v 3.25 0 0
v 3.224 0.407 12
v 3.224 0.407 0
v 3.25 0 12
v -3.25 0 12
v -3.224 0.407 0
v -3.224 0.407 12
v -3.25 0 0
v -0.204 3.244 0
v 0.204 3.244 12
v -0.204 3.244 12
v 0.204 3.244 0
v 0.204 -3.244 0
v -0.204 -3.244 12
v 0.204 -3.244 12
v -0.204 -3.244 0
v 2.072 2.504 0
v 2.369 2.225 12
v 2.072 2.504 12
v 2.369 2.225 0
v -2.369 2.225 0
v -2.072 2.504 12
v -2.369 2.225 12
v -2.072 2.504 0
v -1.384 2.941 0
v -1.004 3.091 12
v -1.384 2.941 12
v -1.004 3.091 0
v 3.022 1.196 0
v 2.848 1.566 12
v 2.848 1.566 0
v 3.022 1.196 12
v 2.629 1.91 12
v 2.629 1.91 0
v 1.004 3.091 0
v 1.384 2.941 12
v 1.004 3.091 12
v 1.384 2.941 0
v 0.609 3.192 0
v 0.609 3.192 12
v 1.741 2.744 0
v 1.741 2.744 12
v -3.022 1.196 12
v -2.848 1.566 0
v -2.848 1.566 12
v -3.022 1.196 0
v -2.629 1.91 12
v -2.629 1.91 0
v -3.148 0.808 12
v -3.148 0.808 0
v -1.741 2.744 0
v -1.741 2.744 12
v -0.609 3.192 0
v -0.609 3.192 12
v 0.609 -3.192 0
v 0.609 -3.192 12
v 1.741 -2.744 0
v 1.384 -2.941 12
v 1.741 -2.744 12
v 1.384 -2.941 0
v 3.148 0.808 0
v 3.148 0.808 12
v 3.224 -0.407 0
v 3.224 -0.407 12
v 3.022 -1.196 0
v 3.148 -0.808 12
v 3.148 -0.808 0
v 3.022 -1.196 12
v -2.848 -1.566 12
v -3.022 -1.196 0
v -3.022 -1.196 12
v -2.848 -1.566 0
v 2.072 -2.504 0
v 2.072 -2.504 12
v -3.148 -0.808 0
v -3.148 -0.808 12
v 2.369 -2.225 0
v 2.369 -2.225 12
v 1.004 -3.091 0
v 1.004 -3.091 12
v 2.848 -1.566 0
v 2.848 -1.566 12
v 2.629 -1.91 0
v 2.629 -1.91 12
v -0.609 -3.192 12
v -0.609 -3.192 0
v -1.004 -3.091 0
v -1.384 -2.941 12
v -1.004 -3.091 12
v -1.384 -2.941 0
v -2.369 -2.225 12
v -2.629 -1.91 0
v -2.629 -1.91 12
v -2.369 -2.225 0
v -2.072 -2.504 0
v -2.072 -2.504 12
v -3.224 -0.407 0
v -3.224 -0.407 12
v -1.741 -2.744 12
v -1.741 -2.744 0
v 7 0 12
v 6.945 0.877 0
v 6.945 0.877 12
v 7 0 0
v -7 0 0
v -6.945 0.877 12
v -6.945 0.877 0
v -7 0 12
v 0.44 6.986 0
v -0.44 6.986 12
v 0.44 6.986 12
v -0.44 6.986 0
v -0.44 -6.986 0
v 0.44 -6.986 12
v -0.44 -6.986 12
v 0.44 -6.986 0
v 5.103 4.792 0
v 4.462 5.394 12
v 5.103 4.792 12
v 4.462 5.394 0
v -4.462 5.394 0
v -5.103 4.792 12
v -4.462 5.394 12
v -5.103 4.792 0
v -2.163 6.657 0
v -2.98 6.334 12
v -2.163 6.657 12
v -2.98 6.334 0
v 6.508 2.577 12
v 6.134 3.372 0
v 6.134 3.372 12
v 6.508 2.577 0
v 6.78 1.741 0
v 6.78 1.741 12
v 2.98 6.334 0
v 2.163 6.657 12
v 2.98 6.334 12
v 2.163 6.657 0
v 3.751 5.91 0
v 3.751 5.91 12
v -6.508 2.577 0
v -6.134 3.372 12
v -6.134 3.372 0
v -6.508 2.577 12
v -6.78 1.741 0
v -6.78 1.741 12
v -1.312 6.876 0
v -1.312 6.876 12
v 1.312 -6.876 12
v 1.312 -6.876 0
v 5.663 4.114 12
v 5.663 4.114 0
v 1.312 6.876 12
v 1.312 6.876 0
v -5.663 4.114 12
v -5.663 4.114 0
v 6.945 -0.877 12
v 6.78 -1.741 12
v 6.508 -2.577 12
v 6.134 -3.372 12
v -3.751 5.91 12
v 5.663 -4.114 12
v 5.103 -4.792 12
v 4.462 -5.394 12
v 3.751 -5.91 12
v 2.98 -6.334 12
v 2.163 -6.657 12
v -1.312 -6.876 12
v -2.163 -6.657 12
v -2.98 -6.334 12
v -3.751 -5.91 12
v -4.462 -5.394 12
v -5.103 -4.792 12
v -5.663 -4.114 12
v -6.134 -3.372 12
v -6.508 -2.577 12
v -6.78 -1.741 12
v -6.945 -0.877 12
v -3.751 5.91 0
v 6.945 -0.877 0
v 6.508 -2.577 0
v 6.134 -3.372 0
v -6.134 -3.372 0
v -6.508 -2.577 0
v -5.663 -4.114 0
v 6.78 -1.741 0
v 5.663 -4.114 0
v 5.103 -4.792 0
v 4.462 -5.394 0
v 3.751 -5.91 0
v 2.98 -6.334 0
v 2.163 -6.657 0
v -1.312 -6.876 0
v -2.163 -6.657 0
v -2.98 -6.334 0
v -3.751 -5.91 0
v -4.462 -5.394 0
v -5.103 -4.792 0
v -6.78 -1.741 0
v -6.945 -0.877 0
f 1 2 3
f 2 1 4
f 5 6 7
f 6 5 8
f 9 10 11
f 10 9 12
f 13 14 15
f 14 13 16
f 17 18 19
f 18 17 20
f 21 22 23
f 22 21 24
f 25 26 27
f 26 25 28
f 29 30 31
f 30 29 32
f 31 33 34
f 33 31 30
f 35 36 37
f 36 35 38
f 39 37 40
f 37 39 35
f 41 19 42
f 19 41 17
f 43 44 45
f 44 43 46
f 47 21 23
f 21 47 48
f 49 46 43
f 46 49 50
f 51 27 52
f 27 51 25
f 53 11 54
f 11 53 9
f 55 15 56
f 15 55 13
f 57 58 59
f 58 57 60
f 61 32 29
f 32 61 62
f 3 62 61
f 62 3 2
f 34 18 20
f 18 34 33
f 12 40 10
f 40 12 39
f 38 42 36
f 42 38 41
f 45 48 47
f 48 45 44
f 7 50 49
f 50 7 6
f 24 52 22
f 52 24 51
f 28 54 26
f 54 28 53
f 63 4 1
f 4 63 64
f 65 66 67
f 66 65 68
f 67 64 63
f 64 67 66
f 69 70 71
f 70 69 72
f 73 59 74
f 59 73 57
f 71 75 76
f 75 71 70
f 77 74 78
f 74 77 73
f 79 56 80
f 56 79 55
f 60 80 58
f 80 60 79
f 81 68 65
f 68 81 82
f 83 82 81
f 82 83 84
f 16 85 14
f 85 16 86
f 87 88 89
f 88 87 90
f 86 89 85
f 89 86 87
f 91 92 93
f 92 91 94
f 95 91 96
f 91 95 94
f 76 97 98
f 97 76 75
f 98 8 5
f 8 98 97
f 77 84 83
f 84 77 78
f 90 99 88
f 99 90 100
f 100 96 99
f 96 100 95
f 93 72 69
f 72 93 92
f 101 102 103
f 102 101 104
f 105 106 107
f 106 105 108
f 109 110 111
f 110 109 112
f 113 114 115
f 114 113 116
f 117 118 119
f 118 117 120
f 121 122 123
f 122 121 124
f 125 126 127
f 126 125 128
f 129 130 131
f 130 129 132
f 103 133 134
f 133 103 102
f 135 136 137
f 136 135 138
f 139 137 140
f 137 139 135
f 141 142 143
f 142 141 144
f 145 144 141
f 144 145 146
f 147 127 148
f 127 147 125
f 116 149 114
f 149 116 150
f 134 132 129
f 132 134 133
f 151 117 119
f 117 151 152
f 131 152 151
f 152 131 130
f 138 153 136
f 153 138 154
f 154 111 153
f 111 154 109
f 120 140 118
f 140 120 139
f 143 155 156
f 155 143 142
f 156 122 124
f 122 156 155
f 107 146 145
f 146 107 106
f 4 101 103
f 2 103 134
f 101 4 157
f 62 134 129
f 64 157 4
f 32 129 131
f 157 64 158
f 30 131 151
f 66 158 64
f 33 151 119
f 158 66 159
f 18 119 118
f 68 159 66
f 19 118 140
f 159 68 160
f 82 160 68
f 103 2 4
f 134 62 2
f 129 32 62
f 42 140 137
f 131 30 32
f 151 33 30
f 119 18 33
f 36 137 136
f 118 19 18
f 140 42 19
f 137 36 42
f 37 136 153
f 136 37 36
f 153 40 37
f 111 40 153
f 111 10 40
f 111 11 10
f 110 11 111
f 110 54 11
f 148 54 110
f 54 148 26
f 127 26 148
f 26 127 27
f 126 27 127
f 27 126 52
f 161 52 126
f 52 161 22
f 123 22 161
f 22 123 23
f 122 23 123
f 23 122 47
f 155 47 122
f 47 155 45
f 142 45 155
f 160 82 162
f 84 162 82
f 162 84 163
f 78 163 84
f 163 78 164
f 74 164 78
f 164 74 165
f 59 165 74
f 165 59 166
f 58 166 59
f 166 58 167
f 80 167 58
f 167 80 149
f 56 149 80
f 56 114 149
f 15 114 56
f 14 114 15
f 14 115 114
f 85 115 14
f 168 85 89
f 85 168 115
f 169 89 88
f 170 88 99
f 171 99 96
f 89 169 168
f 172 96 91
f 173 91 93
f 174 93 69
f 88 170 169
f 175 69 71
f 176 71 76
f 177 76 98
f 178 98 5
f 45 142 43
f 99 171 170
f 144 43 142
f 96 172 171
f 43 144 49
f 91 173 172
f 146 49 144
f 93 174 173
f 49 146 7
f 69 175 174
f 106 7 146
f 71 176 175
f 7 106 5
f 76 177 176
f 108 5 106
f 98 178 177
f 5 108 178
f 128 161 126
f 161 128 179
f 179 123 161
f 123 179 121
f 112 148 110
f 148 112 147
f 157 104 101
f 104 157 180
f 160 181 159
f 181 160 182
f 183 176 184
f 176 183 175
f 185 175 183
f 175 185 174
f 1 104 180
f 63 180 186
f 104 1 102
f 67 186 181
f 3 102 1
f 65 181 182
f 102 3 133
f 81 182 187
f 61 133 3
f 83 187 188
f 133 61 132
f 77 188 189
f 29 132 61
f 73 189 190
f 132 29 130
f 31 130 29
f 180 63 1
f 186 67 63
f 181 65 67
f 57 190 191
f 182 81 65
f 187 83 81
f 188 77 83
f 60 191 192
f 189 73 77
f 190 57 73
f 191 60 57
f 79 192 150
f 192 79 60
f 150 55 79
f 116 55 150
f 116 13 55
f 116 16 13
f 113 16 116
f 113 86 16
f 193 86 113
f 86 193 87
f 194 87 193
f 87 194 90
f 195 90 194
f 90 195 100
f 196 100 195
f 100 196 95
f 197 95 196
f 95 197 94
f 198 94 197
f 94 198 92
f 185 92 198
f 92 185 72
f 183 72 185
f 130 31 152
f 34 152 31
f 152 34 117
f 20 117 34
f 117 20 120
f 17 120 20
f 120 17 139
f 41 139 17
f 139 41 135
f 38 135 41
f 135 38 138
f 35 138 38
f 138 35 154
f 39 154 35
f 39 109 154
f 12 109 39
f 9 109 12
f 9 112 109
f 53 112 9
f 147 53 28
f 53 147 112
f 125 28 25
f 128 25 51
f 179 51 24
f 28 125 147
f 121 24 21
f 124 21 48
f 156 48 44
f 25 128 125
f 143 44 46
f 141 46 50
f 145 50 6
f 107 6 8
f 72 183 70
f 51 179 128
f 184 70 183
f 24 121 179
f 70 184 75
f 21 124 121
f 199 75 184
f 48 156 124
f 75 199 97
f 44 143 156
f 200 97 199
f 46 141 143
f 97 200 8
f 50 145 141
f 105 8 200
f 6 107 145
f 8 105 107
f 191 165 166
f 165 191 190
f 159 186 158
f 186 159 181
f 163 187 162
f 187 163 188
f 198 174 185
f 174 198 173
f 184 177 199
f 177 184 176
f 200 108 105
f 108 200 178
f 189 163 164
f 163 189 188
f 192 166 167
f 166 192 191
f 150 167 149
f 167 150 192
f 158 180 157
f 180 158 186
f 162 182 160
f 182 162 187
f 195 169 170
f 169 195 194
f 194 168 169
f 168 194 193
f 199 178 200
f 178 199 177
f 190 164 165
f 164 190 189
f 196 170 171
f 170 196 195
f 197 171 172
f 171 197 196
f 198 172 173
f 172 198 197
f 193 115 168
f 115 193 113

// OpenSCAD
$fn = 50;


difference() {
	union() {
		translate(v = [0, 0, 0]) {
			rotate(a = [0, 0, 0]) {
				cylinder(h = 12, r = 7.0000000000);
			}
		}
	}
	union() {
		translate(v = [0.0000000000, 0.0000000000, 0]) {
			rotate(a = [0, 0, 0]) {
				translate(v = [0, 0, -50]) {
					rotate(a = [0, 0, 0]) {
						cylinder(h = 100, r = 3.2500000000);
					}
				}
			}
		}
	}
}
